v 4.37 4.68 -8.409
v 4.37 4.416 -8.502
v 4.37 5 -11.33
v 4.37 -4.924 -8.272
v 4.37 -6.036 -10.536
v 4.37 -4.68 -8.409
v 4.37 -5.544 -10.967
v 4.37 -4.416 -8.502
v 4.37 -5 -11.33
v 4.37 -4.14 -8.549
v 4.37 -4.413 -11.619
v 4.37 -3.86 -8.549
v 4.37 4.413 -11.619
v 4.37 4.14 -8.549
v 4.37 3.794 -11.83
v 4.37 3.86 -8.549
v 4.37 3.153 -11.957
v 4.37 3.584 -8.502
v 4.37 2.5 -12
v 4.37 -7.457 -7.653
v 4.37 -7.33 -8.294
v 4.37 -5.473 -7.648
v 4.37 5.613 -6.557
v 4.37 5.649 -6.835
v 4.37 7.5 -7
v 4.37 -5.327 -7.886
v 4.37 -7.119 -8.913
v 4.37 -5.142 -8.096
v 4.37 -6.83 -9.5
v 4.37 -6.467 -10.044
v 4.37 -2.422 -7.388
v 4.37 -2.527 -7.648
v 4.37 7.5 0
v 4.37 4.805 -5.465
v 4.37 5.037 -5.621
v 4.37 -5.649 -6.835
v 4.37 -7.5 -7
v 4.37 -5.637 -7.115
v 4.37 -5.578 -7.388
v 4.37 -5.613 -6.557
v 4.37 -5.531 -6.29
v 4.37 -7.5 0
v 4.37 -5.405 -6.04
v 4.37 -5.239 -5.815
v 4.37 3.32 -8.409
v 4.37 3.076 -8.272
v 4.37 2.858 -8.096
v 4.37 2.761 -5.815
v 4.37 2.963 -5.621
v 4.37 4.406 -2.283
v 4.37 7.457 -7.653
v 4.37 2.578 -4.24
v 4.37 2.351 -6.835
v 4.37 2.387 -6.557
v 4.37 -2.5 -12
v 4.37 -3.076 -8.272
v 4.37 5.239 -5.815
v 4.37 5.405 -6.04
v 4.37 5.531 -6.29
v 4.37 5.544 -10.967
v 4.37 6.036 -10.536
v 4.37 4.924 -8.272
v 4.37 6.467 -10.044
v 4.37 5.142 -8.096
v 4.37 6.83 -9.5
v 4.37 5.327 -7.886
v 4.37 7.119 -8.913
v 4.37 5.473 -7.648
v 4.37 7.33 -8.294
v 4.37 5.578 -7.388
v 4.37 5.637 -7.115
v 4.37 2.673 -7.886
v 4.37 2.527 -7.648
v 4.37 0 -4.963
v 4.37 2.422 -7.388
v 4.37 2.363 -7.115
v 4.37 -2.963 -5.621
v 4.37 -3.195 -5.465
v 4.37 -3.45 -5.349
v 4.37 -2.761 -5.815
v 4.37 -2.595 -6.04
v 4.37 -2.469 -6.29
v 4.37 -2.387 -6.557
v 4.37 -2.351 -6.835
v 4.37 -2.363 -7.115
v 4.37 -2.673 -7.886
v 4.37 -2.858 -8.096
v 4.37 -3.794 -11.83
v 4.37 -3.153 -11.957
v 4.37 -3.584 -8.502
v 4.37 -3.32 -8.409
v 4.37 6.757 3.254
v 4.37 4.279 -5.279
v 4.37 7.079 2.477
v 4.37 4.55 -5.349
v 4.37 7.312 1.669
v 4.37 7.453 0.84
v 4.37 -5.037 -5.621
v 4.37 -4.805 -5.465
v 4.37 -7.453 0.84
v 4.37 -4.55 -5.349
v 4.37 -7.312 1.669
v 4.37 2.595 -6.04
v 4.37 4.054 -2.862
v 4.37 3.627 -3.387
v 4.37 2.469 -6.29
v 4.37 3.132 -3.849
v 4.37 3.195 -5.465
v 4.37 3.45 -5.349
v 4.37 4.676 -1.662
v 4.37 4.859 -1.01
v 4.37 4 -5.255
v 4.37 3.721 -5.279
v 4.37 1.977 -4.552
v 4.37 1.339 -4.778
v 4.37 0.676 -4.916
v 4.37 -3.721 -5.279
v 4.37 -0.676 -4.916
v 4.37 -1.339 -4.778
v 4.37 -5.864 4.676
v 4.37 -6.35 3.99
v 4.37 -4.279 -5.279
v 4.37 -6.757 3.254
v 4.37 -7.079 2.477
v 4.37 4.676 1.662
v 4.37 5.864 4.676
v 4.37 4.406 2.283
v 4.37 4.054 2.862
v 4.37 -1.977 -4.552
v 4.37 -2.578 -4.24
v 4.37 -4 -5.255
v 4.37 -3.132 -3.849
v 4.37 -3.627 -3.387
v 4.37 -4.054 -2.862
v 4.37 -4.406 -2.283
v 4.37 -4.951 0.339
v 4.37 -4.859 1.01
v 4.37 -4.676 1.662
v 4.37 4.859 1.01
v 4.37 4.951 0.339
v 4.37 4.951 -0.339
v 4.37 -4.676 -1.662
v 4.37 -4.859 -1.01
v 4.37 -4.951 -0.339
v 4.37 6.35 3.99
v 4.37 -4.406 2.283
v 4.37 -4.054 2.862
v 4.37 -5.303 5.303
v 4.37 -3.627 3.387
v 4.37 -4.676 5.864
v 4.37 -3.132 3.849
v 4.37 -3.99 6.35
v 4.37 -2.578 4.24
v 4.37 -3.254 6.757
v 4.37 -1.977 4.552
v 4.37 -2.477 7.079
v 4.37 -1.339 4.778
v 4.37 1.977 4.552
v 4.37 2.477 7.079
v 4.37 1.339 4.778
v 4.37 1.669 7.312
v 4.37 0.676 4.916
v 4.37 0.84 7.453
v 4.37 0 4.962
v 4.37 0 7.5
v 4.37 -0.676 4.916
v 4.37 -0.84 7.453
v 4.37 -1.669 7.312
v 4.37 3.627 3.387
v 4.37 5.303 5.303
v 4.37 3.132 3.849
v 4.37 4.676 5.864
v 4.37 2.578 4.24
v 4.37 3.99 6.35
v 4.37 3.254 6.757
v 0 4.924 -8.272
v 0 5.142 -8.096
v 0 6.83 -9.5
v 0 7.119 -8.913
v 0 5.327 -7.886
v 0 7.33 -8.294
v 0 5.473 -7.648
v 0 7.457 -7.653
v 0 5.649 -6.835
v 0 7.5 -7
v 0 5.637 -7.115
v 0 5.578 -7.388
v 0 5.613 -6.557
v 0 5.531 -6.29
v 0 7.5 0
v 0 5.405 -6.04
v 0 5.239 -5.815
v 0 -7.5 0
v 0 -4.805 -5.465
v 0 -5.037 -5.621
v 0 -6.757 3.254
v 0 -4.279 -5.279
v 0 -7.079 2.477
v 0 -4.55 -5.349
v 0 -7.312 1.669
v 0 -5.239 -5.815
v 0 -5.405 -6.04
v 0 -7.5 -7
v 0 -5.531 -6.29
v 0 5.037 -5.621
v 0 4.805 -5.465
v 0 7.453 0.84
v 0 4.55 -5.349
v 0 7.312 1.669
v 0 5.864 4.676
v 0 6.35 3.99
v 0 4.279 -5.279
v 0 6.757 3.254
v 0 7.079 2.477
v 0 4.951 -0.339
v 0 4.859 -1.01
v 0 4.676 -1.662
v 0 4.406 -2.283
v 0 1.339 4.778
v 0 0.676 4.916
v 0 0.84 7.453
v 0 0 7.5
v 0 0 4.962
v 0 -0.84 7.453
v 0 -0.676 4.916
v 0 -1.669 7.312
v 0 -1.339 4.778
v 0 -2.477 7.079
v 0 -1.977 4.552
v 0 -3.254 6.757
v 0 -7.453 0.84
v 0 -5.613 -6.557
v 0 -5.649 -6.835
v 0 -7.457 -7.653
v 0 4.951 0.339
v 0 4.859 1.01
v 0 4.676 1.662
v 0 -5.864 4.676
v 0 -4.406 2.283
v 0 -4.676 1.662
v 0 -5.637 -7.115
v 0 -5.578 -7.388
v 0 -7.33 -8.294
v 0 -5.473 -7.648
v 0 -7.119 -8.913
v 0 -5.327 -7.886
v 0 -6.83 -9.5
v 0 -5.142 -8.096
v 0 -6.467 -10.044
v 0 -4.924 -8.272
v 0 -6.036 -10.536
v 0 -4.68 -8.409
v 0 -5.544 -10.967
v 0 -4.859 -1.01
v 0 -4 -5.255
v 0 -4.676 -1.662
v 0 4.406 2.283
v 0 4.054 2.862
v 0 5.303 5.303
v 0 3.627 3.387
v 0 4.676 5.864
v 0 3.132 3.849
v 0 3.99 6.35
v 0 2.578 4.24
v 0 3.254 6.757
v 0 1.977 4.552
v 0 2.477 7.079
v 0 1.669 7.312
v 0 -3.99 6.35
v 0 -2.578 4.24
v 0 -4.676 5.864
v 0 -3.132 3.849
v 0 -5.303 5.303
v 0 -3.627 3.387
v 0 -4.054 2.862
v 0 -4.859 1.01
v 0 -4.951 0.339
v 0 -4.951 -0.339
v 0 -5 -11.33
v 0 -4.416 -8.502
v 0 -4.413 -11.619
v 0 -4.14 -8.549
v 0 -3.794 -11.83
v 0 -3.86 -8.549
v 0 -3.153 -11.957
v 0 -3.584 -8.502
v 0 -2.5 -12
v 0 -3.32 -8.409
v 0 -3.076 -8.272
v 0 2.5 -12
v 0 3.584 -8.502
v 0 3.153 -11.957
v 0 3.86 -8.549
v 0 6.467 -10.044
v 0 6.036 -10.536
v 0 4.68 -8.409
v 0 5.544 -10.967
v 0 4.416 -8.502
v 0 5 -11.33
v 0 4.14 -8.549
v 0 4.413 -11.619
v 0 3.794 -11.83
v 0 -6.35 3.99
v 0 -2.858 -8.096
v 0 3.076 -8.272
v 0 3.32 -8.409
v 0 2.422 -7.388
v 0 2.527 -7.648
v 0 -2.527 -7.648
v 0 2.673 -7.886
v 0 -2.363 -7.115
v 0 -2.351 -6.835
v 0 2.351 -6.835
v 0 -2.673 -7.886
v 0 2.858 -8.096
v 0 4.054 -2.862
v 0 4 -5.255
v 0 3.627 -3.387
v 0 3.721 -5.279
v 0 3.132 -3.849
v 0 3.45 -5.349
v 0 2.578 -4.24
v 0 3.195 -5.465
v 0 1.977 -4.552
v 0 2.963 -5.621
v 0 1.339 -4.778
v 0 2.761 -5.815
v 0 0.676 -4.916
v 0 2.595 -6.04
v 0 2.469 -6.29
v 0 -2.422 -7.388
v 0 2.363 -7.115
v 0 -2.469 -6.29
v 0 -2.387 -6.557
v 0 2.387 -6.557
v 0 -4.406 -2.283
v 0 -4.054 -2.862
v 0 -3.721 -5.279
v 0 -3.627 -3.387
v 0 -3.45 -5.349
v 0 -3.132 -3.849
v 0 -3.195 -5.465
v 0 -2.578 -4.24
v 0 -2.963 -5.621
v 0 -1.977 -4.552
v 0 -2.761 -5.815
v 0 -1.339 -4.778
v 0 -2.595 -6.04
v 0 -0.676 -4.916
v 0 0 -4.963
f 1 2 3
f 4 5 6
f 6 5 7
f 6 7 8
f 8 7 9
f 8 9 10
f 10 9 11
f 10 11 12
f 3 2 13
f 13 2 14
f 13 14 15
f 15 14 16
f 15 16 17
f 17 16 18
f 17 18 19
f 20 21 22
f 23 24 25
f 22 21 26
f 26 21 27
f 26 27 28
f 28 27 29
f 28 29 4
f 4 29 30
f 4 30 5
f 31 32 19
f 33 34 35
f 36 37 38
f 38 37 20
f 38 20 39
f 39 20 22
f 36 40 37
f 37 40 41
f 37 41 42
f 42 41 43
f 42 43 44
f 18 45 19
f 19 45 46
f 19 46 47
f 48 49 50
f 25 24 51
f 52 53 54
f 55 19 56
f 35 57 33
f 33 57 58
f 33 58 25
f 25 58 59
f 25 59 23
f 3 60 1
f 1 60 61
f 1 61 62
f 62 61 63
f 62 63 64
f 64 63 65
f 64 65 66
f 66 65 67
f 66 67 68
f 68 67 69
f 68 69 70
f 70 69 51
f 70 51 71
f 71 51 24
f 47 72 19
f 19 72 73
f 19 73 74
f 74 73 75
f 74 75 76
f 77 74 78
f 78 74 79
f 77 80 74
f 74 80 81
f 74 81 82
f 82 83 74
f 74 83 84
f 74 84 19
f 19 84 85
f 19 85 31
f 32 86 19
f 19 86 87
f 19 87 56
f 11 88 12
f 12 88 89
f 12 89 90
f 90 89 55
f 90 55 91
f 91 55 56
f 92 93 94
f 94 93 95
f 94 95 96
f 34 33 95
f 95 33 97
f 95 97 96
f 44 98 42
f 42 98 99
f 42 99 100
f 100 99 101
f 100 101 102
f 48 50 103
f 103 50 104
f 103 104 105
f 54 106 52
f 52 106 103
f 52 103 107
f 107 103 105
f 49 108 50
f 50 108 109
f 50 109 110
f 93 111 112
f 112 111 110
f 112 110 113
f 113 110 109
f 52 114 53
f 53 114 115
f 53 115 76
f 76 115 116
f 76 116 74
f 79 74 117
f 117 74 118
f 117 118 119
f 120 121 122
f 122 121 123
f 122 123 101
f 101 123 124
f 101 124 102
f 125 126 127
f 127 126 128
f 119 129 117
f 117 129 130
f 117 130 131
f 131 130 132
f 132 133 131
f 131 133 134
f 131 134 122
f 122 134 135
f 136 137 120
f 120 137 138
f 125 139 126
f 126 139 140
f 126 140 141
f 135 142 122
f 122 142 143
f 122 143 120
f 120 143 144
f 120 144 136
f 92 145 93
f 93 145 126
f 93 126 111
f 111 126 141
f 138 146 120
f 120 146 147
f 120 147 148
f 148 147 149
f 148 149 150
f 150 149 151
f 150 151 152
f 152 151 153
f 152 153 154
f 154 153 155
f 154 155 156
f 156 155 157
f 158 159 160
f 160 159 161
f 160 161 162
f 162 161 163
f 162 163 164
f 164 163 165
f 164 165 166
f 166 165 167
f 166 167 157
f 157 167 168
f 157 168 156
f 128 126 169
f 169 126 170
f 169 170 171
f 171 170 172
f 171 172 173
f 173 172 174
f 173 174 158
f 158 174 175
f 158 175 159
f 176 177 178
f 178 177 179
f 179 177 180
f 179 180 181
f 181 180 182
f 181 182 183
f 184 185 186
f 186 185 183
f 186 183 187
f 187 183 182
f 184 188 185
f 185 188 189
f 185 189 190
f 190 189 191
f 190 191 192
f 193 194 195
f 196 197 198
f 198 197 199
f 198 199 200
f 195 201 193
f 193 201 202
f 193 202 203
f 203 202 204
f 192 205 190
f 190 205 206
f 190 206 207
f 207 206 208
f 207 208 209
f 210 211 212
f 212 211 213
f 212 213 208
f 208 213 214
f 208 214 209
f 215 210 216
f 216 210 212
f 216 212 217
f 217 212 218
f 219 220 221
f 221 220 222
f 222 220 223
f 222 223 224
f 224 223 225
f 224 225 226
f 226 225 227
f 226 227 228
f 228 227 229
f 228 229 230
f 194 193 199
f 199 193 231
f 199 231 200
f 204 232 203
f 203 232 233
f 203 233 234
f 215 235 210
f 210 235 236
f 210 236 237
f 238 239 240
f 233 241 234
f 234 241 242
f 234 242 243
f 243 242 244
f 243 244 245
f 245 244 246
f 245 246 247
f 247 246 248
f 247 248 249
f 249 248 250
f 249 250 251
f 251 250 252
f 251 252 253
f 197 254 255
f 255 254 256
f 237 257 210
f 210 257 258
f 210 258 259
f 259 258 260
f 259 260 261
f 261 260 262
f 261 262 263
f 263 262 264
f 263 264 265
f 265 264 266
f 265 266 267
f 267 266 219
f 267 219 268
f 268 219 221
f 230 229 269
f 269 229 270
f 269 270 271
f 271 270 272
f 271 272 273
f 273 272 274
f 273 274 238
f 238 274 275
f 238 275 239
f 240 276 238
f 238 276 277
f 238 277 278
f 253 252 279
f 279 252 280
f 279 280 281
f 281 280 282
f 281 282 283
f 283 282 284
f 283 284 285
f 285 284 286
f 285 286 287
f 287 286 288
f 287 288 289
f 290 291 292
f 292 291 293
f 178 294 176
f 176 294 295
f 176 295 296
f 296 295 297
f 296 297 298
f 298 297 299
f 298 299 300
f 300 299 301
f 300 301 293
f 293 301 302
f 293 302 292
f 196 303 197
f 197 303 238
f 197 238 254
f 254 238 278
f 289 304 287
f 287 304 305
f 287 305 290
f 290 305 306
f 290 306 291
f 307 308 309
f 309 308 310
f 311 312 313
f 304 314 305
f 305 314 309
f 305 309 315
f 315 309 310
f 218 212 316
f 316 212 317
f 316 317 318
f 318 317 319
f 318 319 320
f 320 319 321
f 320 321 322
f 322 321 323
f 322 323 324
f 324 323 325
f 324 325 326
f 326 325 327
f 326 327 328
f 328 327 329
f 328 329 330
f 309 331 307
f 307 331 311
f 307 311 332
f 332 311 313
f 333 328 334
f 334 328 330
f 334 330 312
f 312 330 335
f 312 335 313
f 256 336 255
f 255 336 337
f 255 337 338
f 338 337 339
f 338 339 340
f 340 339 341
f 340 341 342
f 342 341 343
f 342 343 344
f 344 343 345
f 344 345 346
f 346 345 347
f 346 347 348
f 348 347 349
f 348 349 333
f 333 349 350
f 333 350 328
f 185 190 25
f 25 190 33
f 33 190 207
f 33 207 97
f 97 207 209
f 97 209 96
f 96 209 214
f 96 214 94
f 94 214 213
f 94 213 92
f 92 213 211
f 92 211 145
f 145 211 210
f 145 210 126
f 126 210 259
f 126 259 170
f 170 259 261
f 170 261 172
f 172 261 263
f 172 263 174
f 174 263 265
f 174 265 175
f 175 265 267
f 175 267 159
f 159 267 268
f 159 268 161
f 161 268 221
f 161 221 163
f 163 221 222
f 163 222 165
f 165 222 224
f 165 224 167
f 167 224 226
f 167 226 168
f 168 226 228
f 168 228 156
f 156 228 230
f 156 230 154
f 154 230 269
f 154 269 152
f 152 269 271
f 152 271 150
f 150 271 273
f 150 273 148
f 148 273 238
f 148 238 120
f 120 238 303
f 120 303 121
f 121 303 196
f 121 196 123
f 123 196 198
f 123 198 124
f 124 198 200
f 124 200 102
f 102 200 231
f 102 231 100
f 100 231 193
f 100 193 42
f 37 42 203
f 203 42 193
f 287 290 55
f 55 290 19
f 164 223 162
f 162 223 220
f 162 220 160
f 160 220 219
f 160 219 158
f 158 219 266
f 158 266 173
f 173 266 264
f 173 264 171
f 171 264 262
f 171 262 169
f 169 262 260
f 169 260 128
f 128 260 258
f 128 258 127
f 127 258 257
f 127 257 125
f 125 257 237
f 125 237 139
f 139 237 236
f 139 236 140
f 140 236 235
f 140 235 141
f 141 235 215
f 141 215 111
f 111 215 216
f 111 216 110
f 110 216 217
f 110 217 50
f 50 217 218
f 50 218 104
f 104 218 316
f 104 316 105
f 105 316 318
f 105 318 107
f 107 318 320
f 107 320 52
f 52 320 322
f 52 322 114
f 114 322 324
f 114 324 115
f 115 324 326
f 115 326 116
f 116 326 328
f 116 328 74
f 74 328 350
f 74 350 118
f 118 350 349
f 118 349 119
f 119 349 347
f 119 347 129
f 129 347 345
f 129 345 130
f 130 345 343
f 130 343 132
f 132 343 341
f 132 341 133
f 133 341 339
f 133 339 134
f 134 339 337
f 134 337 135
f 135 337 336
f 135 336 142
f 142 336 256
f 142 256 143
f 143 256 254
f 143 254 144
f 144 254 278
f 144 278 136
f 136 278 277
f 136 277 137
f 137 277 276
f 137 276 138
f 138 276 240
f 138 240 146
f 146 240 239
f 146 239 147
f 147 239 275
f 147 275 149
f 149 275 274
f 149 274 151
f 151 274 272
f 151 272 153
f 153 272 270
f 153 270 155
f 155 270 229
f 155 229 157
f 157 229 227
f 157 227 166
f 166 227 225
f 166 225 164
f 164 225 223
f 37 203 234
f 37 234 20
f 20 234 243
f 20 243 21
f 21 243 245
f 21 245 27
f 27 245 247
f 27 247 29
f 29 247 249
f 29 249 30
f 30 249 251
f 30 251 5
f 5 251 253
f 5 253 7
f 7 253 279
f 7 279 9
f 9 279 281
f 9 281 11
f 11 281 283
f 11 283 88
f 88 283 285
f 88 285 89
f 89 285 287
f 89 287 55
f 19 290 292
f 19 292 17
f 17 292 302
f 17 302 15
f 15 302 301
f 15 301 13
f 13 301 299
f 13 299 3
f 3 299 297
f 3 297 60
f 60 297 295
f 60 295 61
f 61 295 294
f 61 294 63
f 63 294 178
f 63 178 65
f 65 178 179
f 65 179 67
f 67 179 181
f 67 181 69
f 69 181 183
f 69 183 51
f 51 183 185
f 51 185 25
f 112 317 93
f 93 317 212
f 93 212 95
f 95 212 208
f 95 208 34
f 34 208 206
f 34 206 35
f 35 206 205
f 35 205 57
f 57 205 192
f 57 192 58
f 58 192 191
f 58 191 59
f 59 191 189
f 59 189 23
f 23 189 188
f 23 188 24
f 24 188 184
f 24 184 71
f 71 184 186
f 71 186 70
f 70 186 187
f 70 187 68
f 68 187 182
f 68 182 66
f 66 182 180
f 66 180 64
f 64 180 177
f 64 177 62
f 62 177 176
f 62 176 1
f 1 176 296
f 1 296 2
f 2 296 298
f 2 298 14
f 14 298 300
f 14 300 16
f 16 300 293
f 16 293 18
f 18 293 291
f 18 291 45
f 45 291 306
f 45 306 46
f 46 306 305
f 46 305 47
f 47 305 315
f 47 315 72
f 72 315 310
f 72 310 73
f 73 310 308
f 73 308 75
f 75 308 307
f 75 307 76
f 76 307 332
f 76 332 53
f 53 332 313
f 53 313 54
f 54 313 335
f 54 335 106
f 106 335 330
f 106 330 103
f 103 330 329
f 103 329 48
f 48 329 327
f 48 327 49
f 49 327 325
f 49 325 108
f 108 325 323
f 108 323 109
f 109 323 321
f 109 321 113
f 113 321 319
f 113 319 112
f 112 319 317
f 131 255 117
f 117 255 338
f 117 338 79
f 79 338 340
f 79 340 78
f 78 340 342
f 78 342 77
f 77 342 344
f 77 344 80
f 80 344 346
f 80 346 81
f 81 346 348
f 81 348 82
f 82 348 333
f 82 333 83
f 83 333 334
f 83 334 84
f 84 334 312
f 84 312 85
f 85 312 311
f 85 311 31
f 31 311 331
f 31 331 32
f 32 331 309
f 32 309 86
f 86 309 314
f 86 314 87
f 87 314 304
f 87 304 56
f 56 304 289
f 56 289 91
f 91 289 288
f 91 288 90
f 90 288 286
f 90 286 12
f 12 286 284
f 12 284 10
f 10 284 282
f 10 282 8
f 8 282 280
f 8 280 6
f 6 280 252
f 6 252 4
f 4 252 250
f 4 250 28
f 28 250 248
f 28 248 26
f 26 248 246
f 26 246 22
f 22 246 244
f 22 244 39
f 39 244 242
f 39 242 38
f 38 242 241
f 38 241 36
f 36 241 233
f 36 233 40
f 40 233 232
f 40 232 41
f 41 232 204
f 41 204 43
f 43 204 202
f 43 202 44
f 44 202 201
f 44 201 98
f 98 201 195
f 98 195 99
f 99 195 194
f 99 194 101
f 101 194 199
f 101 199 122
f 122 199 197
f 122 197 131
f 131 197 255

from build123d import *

# Parameters (mm, degrees)
SKETCH1_R           = 4.9625
BOSS_EXTRUDE1_DEPTH = 4.37
FILLET1_R           = 5
SKETCH2_R           = 1.65
CUT_EXTRUDE1_DEPTH  = 5.37


with BuildPart() as part:
    # Sketch1 → Boss-Extrude1 (new body)
    with BuildSketch(Plane(origin=(0, 0, 0), x_dir=(0, 0, -1), z_dir=(1, 0, 0))):
        with BuildLine():
            Line((0, 7.5), (12, 7.5))
            Line((12, 7.5), (12, -7.5))
            Line((12, -7.5), (0, -7.5))
            ThreePointArc((0, -7.5), (-7.5, 0), (0, 7.5))
        make_face()
        Circle(SKETCH1_R, mode=Mode.SUBTRACT)
    extrude(amount=BOSS_EXTRUDE1_DEPTH)

    # Fillet1
    fillet1_edges = [part.edges().sort_by_distance(p)[0] for p in [
        (2.185, -7.5, -12),
        (2.185, 7.5, -12),
    ]]
    fillet(fillet1_edges, radius=FILLET1_R)

    # Sketch2 → Cut-Extrude1 (cut, through all)
    with BuildSketch(Plane.ZY):
        with Locations((-6.905099565, 4)):
            Circle(SKETCH2_R)
        with Locations((-6.905099565, -4)):
            Circle(SKETCH2_R)
    extrude(amount=-CUT_EXTRUDE1_DEPTH, mode=Mode.SUBTRACT)


solid = part.part
